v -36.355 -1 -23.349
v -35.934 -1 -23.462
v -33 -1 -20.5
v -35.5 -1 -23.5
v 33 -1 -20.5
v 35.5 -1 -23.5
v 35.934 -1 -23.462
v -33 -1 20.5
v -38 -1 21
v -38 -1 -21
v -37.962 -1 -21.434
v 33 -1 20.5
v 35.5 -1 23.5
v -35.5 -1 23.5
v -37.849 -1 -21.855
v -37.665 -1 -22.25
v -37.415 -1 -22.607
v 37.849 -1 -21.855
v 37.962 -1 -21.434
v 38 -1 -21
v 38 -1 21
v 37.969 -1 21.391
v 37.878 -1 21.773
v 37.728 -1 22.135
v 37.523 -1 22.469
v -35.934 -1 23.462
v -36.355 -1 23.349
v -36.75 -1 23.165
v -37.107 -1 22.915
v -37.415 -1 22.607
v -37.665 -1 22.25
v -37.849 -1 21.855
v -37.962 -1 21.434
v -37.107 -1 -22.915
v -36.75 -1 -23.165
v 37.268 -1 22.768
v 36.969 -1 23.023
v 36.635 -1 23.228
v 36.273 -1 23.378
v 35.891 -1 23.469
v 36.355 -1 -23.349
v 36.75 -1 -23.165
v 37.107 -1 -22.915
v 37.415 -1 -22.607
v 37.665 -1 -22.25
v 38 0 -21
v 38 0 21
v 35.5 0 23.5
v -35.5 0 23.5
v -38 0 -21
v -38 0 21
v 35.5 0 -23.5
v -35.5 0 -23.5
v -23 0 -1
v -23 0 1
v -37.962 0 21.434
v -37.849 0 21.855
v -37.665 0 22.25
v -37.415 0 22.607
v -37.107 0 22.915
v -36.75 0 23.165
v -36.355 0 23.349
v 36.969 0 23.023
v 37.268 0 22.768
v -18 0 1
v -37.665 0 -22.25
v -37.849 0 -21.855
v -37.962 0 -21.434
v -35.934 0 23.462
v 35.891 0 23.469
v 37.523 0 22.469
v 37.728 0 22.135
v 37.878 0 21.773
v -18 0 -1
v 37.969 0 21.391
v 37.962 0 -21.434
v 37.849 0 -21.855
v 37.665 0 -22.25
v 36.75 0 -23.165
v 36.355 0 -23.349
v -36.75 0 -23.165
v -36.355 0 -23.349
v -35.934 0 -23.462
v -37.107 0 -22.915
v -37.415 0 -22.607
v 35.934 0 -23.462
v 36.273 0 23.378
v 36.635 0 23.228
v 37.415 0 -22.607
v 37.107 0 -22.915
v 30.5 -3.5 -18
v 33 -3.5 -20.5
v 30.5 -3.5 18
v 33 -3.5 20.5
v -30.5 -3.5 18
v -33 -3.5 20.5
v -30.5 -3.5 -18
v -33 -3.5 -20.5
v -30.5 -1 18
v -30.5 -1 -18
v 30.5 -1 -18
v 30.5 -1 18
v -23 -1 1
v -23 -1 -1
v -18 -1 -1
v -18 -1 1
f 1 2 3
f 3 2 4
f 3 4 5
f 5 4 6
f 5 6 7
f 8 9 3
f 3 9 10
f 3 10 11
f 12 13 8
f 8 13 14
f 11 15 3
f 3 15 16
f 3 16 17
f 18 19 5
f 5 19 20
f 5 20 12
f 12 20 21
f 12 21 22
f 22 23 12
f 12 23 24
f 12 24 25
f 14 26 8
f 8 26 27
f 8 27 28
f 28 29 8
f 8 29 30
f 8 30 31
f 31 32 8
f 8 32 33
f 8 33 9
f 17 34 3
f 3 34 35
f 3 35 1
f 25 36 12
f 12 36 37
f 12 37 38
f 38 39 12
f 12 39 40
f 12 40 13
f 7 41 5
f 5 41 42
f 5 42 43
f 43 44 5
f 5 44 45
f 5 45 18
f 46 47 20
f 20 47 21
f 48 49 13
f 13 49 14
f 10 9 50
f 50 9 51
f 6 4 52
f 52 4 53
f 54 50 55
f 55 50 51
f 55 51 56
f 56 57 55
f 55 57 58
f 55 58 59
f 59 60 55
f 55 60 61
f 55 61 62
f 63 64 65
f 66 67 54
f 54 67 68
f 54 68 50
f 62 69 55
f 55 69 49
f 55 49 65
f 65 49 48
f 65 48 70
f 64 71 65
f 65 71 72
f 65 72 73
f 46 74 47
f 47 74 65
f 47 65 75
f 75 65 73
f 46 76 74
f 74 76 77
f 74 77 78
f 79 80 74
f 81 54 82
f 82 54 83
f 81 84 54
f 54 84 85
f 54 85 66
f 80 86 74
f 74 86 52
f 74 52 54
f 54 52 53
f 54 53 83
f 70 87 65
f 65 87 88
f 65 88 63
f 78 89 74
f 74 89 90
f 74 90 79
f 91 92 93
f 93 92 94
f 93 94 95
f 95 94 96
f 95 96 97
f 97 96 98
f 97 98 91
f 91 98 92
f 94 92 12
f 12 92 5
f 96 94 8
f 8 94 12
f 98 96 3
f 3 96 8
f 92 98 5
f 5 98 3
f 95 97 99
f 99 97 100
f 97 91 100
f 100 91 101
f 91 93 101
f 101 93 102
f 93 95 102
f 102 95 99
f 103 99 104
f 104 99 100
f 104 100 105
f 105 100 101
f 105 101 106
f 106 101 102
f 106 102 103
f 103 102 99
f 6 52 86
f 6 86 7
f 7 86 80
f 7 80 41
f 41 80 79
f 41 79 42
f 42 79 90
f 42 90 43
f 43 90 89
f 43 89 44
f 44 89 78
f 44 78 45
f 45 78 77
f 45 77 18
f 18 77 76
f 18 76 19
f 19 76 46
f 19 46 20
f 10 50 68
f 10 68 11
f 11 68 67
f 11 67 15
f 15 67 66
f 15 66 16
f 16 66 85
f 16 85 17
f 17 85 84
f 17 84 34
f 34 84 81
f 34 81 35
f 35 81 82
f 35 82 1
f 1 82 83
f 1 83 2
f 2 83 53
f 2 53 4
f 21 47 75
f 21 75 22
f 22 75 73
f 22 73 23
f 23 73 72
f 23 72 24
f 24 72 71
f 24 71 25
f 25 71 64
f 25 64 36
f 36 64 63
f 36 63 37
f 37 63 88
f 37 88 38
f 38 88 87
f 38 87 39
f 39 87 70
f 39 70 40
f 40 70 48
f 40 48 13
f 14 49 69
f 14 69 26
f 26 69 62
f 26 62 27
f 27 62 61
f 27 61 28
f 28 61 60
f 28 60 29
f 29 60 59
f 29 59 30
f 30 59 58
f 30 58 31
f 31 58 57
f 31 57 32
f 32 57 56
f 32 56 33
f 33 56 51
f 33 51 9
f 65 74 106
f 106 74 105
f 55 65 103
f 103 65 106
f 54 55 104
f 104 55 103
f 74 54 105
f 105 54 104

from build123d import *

# Parameters (mm, degrees)
SKETCH1_W           = 76
SKETCH1_H           = 47
BOSS_EXTRUDE1_DEPTH = 1
SKETCH2_W           = 66
SKETCH2_H           = 41
SKETCH2_W_2         = 61
SKETCH2_H_2         = 36
BOSS_EXTRUDE2_DEPTH = 2.5
FILLET1_R           = 2.5
SKETCH4_W           = 5
SKETCH4_H           = 2
CUT_EXTRUDE1_DEPTH  = 1


with BuildPart() as part:
    # Sketch1 → Boss-Extrude1 (new body)
    with BuildSketch(Plane(origin=(0, 0, 0), x_dir=(1, 0, 0), z_dir=(0, 1, 0))):
        Rectangle(SKETCH1_W, SKETCH1_H)
    extrude(amount=-BOSS_EXTRUDE1_DEPTH)

    # Sketch2 → Boss-Extrude2 (add)
    with BuildSketch(Plane.XZ.offset(1)):
        Rectangle(SKETCH2_W, SKETCH2_H)
        Rectangle(SKETCH2_W_2, SKETCH2_H_2, mode=Mode.SUBTRACT)
    extrude(amount=BOSS_EXTRUDE2_DEPTH)

    # Fillet1
    fillet1_edges = [part.edges().sort_by_distance(p)[0] for p in [
        (38, -0.5, 23.5),
        (-38, -0.5, 23.5),
        (-38, -0.5, -23.5),
        (38, -0.5, -23.5),
    ]]
    fillet(fillet1_edges, radius=FILLET1_R)

    # Sketch4 → Cut-Extrude1 (cut)
    with BuildSketch(Plane(origin=(0, 0, 0), x_dir=(1, 0, 0), z_dir=(0, 1, 0))):
        with Locations((-20.5, 0)):
            Rectangle(SKETCH4_W, SKETCH4_H)
    extrude(amount=-CUT_EXTRUDE1_DEPTH, mode=Mode.SUBTRACT)


solid = part.part
